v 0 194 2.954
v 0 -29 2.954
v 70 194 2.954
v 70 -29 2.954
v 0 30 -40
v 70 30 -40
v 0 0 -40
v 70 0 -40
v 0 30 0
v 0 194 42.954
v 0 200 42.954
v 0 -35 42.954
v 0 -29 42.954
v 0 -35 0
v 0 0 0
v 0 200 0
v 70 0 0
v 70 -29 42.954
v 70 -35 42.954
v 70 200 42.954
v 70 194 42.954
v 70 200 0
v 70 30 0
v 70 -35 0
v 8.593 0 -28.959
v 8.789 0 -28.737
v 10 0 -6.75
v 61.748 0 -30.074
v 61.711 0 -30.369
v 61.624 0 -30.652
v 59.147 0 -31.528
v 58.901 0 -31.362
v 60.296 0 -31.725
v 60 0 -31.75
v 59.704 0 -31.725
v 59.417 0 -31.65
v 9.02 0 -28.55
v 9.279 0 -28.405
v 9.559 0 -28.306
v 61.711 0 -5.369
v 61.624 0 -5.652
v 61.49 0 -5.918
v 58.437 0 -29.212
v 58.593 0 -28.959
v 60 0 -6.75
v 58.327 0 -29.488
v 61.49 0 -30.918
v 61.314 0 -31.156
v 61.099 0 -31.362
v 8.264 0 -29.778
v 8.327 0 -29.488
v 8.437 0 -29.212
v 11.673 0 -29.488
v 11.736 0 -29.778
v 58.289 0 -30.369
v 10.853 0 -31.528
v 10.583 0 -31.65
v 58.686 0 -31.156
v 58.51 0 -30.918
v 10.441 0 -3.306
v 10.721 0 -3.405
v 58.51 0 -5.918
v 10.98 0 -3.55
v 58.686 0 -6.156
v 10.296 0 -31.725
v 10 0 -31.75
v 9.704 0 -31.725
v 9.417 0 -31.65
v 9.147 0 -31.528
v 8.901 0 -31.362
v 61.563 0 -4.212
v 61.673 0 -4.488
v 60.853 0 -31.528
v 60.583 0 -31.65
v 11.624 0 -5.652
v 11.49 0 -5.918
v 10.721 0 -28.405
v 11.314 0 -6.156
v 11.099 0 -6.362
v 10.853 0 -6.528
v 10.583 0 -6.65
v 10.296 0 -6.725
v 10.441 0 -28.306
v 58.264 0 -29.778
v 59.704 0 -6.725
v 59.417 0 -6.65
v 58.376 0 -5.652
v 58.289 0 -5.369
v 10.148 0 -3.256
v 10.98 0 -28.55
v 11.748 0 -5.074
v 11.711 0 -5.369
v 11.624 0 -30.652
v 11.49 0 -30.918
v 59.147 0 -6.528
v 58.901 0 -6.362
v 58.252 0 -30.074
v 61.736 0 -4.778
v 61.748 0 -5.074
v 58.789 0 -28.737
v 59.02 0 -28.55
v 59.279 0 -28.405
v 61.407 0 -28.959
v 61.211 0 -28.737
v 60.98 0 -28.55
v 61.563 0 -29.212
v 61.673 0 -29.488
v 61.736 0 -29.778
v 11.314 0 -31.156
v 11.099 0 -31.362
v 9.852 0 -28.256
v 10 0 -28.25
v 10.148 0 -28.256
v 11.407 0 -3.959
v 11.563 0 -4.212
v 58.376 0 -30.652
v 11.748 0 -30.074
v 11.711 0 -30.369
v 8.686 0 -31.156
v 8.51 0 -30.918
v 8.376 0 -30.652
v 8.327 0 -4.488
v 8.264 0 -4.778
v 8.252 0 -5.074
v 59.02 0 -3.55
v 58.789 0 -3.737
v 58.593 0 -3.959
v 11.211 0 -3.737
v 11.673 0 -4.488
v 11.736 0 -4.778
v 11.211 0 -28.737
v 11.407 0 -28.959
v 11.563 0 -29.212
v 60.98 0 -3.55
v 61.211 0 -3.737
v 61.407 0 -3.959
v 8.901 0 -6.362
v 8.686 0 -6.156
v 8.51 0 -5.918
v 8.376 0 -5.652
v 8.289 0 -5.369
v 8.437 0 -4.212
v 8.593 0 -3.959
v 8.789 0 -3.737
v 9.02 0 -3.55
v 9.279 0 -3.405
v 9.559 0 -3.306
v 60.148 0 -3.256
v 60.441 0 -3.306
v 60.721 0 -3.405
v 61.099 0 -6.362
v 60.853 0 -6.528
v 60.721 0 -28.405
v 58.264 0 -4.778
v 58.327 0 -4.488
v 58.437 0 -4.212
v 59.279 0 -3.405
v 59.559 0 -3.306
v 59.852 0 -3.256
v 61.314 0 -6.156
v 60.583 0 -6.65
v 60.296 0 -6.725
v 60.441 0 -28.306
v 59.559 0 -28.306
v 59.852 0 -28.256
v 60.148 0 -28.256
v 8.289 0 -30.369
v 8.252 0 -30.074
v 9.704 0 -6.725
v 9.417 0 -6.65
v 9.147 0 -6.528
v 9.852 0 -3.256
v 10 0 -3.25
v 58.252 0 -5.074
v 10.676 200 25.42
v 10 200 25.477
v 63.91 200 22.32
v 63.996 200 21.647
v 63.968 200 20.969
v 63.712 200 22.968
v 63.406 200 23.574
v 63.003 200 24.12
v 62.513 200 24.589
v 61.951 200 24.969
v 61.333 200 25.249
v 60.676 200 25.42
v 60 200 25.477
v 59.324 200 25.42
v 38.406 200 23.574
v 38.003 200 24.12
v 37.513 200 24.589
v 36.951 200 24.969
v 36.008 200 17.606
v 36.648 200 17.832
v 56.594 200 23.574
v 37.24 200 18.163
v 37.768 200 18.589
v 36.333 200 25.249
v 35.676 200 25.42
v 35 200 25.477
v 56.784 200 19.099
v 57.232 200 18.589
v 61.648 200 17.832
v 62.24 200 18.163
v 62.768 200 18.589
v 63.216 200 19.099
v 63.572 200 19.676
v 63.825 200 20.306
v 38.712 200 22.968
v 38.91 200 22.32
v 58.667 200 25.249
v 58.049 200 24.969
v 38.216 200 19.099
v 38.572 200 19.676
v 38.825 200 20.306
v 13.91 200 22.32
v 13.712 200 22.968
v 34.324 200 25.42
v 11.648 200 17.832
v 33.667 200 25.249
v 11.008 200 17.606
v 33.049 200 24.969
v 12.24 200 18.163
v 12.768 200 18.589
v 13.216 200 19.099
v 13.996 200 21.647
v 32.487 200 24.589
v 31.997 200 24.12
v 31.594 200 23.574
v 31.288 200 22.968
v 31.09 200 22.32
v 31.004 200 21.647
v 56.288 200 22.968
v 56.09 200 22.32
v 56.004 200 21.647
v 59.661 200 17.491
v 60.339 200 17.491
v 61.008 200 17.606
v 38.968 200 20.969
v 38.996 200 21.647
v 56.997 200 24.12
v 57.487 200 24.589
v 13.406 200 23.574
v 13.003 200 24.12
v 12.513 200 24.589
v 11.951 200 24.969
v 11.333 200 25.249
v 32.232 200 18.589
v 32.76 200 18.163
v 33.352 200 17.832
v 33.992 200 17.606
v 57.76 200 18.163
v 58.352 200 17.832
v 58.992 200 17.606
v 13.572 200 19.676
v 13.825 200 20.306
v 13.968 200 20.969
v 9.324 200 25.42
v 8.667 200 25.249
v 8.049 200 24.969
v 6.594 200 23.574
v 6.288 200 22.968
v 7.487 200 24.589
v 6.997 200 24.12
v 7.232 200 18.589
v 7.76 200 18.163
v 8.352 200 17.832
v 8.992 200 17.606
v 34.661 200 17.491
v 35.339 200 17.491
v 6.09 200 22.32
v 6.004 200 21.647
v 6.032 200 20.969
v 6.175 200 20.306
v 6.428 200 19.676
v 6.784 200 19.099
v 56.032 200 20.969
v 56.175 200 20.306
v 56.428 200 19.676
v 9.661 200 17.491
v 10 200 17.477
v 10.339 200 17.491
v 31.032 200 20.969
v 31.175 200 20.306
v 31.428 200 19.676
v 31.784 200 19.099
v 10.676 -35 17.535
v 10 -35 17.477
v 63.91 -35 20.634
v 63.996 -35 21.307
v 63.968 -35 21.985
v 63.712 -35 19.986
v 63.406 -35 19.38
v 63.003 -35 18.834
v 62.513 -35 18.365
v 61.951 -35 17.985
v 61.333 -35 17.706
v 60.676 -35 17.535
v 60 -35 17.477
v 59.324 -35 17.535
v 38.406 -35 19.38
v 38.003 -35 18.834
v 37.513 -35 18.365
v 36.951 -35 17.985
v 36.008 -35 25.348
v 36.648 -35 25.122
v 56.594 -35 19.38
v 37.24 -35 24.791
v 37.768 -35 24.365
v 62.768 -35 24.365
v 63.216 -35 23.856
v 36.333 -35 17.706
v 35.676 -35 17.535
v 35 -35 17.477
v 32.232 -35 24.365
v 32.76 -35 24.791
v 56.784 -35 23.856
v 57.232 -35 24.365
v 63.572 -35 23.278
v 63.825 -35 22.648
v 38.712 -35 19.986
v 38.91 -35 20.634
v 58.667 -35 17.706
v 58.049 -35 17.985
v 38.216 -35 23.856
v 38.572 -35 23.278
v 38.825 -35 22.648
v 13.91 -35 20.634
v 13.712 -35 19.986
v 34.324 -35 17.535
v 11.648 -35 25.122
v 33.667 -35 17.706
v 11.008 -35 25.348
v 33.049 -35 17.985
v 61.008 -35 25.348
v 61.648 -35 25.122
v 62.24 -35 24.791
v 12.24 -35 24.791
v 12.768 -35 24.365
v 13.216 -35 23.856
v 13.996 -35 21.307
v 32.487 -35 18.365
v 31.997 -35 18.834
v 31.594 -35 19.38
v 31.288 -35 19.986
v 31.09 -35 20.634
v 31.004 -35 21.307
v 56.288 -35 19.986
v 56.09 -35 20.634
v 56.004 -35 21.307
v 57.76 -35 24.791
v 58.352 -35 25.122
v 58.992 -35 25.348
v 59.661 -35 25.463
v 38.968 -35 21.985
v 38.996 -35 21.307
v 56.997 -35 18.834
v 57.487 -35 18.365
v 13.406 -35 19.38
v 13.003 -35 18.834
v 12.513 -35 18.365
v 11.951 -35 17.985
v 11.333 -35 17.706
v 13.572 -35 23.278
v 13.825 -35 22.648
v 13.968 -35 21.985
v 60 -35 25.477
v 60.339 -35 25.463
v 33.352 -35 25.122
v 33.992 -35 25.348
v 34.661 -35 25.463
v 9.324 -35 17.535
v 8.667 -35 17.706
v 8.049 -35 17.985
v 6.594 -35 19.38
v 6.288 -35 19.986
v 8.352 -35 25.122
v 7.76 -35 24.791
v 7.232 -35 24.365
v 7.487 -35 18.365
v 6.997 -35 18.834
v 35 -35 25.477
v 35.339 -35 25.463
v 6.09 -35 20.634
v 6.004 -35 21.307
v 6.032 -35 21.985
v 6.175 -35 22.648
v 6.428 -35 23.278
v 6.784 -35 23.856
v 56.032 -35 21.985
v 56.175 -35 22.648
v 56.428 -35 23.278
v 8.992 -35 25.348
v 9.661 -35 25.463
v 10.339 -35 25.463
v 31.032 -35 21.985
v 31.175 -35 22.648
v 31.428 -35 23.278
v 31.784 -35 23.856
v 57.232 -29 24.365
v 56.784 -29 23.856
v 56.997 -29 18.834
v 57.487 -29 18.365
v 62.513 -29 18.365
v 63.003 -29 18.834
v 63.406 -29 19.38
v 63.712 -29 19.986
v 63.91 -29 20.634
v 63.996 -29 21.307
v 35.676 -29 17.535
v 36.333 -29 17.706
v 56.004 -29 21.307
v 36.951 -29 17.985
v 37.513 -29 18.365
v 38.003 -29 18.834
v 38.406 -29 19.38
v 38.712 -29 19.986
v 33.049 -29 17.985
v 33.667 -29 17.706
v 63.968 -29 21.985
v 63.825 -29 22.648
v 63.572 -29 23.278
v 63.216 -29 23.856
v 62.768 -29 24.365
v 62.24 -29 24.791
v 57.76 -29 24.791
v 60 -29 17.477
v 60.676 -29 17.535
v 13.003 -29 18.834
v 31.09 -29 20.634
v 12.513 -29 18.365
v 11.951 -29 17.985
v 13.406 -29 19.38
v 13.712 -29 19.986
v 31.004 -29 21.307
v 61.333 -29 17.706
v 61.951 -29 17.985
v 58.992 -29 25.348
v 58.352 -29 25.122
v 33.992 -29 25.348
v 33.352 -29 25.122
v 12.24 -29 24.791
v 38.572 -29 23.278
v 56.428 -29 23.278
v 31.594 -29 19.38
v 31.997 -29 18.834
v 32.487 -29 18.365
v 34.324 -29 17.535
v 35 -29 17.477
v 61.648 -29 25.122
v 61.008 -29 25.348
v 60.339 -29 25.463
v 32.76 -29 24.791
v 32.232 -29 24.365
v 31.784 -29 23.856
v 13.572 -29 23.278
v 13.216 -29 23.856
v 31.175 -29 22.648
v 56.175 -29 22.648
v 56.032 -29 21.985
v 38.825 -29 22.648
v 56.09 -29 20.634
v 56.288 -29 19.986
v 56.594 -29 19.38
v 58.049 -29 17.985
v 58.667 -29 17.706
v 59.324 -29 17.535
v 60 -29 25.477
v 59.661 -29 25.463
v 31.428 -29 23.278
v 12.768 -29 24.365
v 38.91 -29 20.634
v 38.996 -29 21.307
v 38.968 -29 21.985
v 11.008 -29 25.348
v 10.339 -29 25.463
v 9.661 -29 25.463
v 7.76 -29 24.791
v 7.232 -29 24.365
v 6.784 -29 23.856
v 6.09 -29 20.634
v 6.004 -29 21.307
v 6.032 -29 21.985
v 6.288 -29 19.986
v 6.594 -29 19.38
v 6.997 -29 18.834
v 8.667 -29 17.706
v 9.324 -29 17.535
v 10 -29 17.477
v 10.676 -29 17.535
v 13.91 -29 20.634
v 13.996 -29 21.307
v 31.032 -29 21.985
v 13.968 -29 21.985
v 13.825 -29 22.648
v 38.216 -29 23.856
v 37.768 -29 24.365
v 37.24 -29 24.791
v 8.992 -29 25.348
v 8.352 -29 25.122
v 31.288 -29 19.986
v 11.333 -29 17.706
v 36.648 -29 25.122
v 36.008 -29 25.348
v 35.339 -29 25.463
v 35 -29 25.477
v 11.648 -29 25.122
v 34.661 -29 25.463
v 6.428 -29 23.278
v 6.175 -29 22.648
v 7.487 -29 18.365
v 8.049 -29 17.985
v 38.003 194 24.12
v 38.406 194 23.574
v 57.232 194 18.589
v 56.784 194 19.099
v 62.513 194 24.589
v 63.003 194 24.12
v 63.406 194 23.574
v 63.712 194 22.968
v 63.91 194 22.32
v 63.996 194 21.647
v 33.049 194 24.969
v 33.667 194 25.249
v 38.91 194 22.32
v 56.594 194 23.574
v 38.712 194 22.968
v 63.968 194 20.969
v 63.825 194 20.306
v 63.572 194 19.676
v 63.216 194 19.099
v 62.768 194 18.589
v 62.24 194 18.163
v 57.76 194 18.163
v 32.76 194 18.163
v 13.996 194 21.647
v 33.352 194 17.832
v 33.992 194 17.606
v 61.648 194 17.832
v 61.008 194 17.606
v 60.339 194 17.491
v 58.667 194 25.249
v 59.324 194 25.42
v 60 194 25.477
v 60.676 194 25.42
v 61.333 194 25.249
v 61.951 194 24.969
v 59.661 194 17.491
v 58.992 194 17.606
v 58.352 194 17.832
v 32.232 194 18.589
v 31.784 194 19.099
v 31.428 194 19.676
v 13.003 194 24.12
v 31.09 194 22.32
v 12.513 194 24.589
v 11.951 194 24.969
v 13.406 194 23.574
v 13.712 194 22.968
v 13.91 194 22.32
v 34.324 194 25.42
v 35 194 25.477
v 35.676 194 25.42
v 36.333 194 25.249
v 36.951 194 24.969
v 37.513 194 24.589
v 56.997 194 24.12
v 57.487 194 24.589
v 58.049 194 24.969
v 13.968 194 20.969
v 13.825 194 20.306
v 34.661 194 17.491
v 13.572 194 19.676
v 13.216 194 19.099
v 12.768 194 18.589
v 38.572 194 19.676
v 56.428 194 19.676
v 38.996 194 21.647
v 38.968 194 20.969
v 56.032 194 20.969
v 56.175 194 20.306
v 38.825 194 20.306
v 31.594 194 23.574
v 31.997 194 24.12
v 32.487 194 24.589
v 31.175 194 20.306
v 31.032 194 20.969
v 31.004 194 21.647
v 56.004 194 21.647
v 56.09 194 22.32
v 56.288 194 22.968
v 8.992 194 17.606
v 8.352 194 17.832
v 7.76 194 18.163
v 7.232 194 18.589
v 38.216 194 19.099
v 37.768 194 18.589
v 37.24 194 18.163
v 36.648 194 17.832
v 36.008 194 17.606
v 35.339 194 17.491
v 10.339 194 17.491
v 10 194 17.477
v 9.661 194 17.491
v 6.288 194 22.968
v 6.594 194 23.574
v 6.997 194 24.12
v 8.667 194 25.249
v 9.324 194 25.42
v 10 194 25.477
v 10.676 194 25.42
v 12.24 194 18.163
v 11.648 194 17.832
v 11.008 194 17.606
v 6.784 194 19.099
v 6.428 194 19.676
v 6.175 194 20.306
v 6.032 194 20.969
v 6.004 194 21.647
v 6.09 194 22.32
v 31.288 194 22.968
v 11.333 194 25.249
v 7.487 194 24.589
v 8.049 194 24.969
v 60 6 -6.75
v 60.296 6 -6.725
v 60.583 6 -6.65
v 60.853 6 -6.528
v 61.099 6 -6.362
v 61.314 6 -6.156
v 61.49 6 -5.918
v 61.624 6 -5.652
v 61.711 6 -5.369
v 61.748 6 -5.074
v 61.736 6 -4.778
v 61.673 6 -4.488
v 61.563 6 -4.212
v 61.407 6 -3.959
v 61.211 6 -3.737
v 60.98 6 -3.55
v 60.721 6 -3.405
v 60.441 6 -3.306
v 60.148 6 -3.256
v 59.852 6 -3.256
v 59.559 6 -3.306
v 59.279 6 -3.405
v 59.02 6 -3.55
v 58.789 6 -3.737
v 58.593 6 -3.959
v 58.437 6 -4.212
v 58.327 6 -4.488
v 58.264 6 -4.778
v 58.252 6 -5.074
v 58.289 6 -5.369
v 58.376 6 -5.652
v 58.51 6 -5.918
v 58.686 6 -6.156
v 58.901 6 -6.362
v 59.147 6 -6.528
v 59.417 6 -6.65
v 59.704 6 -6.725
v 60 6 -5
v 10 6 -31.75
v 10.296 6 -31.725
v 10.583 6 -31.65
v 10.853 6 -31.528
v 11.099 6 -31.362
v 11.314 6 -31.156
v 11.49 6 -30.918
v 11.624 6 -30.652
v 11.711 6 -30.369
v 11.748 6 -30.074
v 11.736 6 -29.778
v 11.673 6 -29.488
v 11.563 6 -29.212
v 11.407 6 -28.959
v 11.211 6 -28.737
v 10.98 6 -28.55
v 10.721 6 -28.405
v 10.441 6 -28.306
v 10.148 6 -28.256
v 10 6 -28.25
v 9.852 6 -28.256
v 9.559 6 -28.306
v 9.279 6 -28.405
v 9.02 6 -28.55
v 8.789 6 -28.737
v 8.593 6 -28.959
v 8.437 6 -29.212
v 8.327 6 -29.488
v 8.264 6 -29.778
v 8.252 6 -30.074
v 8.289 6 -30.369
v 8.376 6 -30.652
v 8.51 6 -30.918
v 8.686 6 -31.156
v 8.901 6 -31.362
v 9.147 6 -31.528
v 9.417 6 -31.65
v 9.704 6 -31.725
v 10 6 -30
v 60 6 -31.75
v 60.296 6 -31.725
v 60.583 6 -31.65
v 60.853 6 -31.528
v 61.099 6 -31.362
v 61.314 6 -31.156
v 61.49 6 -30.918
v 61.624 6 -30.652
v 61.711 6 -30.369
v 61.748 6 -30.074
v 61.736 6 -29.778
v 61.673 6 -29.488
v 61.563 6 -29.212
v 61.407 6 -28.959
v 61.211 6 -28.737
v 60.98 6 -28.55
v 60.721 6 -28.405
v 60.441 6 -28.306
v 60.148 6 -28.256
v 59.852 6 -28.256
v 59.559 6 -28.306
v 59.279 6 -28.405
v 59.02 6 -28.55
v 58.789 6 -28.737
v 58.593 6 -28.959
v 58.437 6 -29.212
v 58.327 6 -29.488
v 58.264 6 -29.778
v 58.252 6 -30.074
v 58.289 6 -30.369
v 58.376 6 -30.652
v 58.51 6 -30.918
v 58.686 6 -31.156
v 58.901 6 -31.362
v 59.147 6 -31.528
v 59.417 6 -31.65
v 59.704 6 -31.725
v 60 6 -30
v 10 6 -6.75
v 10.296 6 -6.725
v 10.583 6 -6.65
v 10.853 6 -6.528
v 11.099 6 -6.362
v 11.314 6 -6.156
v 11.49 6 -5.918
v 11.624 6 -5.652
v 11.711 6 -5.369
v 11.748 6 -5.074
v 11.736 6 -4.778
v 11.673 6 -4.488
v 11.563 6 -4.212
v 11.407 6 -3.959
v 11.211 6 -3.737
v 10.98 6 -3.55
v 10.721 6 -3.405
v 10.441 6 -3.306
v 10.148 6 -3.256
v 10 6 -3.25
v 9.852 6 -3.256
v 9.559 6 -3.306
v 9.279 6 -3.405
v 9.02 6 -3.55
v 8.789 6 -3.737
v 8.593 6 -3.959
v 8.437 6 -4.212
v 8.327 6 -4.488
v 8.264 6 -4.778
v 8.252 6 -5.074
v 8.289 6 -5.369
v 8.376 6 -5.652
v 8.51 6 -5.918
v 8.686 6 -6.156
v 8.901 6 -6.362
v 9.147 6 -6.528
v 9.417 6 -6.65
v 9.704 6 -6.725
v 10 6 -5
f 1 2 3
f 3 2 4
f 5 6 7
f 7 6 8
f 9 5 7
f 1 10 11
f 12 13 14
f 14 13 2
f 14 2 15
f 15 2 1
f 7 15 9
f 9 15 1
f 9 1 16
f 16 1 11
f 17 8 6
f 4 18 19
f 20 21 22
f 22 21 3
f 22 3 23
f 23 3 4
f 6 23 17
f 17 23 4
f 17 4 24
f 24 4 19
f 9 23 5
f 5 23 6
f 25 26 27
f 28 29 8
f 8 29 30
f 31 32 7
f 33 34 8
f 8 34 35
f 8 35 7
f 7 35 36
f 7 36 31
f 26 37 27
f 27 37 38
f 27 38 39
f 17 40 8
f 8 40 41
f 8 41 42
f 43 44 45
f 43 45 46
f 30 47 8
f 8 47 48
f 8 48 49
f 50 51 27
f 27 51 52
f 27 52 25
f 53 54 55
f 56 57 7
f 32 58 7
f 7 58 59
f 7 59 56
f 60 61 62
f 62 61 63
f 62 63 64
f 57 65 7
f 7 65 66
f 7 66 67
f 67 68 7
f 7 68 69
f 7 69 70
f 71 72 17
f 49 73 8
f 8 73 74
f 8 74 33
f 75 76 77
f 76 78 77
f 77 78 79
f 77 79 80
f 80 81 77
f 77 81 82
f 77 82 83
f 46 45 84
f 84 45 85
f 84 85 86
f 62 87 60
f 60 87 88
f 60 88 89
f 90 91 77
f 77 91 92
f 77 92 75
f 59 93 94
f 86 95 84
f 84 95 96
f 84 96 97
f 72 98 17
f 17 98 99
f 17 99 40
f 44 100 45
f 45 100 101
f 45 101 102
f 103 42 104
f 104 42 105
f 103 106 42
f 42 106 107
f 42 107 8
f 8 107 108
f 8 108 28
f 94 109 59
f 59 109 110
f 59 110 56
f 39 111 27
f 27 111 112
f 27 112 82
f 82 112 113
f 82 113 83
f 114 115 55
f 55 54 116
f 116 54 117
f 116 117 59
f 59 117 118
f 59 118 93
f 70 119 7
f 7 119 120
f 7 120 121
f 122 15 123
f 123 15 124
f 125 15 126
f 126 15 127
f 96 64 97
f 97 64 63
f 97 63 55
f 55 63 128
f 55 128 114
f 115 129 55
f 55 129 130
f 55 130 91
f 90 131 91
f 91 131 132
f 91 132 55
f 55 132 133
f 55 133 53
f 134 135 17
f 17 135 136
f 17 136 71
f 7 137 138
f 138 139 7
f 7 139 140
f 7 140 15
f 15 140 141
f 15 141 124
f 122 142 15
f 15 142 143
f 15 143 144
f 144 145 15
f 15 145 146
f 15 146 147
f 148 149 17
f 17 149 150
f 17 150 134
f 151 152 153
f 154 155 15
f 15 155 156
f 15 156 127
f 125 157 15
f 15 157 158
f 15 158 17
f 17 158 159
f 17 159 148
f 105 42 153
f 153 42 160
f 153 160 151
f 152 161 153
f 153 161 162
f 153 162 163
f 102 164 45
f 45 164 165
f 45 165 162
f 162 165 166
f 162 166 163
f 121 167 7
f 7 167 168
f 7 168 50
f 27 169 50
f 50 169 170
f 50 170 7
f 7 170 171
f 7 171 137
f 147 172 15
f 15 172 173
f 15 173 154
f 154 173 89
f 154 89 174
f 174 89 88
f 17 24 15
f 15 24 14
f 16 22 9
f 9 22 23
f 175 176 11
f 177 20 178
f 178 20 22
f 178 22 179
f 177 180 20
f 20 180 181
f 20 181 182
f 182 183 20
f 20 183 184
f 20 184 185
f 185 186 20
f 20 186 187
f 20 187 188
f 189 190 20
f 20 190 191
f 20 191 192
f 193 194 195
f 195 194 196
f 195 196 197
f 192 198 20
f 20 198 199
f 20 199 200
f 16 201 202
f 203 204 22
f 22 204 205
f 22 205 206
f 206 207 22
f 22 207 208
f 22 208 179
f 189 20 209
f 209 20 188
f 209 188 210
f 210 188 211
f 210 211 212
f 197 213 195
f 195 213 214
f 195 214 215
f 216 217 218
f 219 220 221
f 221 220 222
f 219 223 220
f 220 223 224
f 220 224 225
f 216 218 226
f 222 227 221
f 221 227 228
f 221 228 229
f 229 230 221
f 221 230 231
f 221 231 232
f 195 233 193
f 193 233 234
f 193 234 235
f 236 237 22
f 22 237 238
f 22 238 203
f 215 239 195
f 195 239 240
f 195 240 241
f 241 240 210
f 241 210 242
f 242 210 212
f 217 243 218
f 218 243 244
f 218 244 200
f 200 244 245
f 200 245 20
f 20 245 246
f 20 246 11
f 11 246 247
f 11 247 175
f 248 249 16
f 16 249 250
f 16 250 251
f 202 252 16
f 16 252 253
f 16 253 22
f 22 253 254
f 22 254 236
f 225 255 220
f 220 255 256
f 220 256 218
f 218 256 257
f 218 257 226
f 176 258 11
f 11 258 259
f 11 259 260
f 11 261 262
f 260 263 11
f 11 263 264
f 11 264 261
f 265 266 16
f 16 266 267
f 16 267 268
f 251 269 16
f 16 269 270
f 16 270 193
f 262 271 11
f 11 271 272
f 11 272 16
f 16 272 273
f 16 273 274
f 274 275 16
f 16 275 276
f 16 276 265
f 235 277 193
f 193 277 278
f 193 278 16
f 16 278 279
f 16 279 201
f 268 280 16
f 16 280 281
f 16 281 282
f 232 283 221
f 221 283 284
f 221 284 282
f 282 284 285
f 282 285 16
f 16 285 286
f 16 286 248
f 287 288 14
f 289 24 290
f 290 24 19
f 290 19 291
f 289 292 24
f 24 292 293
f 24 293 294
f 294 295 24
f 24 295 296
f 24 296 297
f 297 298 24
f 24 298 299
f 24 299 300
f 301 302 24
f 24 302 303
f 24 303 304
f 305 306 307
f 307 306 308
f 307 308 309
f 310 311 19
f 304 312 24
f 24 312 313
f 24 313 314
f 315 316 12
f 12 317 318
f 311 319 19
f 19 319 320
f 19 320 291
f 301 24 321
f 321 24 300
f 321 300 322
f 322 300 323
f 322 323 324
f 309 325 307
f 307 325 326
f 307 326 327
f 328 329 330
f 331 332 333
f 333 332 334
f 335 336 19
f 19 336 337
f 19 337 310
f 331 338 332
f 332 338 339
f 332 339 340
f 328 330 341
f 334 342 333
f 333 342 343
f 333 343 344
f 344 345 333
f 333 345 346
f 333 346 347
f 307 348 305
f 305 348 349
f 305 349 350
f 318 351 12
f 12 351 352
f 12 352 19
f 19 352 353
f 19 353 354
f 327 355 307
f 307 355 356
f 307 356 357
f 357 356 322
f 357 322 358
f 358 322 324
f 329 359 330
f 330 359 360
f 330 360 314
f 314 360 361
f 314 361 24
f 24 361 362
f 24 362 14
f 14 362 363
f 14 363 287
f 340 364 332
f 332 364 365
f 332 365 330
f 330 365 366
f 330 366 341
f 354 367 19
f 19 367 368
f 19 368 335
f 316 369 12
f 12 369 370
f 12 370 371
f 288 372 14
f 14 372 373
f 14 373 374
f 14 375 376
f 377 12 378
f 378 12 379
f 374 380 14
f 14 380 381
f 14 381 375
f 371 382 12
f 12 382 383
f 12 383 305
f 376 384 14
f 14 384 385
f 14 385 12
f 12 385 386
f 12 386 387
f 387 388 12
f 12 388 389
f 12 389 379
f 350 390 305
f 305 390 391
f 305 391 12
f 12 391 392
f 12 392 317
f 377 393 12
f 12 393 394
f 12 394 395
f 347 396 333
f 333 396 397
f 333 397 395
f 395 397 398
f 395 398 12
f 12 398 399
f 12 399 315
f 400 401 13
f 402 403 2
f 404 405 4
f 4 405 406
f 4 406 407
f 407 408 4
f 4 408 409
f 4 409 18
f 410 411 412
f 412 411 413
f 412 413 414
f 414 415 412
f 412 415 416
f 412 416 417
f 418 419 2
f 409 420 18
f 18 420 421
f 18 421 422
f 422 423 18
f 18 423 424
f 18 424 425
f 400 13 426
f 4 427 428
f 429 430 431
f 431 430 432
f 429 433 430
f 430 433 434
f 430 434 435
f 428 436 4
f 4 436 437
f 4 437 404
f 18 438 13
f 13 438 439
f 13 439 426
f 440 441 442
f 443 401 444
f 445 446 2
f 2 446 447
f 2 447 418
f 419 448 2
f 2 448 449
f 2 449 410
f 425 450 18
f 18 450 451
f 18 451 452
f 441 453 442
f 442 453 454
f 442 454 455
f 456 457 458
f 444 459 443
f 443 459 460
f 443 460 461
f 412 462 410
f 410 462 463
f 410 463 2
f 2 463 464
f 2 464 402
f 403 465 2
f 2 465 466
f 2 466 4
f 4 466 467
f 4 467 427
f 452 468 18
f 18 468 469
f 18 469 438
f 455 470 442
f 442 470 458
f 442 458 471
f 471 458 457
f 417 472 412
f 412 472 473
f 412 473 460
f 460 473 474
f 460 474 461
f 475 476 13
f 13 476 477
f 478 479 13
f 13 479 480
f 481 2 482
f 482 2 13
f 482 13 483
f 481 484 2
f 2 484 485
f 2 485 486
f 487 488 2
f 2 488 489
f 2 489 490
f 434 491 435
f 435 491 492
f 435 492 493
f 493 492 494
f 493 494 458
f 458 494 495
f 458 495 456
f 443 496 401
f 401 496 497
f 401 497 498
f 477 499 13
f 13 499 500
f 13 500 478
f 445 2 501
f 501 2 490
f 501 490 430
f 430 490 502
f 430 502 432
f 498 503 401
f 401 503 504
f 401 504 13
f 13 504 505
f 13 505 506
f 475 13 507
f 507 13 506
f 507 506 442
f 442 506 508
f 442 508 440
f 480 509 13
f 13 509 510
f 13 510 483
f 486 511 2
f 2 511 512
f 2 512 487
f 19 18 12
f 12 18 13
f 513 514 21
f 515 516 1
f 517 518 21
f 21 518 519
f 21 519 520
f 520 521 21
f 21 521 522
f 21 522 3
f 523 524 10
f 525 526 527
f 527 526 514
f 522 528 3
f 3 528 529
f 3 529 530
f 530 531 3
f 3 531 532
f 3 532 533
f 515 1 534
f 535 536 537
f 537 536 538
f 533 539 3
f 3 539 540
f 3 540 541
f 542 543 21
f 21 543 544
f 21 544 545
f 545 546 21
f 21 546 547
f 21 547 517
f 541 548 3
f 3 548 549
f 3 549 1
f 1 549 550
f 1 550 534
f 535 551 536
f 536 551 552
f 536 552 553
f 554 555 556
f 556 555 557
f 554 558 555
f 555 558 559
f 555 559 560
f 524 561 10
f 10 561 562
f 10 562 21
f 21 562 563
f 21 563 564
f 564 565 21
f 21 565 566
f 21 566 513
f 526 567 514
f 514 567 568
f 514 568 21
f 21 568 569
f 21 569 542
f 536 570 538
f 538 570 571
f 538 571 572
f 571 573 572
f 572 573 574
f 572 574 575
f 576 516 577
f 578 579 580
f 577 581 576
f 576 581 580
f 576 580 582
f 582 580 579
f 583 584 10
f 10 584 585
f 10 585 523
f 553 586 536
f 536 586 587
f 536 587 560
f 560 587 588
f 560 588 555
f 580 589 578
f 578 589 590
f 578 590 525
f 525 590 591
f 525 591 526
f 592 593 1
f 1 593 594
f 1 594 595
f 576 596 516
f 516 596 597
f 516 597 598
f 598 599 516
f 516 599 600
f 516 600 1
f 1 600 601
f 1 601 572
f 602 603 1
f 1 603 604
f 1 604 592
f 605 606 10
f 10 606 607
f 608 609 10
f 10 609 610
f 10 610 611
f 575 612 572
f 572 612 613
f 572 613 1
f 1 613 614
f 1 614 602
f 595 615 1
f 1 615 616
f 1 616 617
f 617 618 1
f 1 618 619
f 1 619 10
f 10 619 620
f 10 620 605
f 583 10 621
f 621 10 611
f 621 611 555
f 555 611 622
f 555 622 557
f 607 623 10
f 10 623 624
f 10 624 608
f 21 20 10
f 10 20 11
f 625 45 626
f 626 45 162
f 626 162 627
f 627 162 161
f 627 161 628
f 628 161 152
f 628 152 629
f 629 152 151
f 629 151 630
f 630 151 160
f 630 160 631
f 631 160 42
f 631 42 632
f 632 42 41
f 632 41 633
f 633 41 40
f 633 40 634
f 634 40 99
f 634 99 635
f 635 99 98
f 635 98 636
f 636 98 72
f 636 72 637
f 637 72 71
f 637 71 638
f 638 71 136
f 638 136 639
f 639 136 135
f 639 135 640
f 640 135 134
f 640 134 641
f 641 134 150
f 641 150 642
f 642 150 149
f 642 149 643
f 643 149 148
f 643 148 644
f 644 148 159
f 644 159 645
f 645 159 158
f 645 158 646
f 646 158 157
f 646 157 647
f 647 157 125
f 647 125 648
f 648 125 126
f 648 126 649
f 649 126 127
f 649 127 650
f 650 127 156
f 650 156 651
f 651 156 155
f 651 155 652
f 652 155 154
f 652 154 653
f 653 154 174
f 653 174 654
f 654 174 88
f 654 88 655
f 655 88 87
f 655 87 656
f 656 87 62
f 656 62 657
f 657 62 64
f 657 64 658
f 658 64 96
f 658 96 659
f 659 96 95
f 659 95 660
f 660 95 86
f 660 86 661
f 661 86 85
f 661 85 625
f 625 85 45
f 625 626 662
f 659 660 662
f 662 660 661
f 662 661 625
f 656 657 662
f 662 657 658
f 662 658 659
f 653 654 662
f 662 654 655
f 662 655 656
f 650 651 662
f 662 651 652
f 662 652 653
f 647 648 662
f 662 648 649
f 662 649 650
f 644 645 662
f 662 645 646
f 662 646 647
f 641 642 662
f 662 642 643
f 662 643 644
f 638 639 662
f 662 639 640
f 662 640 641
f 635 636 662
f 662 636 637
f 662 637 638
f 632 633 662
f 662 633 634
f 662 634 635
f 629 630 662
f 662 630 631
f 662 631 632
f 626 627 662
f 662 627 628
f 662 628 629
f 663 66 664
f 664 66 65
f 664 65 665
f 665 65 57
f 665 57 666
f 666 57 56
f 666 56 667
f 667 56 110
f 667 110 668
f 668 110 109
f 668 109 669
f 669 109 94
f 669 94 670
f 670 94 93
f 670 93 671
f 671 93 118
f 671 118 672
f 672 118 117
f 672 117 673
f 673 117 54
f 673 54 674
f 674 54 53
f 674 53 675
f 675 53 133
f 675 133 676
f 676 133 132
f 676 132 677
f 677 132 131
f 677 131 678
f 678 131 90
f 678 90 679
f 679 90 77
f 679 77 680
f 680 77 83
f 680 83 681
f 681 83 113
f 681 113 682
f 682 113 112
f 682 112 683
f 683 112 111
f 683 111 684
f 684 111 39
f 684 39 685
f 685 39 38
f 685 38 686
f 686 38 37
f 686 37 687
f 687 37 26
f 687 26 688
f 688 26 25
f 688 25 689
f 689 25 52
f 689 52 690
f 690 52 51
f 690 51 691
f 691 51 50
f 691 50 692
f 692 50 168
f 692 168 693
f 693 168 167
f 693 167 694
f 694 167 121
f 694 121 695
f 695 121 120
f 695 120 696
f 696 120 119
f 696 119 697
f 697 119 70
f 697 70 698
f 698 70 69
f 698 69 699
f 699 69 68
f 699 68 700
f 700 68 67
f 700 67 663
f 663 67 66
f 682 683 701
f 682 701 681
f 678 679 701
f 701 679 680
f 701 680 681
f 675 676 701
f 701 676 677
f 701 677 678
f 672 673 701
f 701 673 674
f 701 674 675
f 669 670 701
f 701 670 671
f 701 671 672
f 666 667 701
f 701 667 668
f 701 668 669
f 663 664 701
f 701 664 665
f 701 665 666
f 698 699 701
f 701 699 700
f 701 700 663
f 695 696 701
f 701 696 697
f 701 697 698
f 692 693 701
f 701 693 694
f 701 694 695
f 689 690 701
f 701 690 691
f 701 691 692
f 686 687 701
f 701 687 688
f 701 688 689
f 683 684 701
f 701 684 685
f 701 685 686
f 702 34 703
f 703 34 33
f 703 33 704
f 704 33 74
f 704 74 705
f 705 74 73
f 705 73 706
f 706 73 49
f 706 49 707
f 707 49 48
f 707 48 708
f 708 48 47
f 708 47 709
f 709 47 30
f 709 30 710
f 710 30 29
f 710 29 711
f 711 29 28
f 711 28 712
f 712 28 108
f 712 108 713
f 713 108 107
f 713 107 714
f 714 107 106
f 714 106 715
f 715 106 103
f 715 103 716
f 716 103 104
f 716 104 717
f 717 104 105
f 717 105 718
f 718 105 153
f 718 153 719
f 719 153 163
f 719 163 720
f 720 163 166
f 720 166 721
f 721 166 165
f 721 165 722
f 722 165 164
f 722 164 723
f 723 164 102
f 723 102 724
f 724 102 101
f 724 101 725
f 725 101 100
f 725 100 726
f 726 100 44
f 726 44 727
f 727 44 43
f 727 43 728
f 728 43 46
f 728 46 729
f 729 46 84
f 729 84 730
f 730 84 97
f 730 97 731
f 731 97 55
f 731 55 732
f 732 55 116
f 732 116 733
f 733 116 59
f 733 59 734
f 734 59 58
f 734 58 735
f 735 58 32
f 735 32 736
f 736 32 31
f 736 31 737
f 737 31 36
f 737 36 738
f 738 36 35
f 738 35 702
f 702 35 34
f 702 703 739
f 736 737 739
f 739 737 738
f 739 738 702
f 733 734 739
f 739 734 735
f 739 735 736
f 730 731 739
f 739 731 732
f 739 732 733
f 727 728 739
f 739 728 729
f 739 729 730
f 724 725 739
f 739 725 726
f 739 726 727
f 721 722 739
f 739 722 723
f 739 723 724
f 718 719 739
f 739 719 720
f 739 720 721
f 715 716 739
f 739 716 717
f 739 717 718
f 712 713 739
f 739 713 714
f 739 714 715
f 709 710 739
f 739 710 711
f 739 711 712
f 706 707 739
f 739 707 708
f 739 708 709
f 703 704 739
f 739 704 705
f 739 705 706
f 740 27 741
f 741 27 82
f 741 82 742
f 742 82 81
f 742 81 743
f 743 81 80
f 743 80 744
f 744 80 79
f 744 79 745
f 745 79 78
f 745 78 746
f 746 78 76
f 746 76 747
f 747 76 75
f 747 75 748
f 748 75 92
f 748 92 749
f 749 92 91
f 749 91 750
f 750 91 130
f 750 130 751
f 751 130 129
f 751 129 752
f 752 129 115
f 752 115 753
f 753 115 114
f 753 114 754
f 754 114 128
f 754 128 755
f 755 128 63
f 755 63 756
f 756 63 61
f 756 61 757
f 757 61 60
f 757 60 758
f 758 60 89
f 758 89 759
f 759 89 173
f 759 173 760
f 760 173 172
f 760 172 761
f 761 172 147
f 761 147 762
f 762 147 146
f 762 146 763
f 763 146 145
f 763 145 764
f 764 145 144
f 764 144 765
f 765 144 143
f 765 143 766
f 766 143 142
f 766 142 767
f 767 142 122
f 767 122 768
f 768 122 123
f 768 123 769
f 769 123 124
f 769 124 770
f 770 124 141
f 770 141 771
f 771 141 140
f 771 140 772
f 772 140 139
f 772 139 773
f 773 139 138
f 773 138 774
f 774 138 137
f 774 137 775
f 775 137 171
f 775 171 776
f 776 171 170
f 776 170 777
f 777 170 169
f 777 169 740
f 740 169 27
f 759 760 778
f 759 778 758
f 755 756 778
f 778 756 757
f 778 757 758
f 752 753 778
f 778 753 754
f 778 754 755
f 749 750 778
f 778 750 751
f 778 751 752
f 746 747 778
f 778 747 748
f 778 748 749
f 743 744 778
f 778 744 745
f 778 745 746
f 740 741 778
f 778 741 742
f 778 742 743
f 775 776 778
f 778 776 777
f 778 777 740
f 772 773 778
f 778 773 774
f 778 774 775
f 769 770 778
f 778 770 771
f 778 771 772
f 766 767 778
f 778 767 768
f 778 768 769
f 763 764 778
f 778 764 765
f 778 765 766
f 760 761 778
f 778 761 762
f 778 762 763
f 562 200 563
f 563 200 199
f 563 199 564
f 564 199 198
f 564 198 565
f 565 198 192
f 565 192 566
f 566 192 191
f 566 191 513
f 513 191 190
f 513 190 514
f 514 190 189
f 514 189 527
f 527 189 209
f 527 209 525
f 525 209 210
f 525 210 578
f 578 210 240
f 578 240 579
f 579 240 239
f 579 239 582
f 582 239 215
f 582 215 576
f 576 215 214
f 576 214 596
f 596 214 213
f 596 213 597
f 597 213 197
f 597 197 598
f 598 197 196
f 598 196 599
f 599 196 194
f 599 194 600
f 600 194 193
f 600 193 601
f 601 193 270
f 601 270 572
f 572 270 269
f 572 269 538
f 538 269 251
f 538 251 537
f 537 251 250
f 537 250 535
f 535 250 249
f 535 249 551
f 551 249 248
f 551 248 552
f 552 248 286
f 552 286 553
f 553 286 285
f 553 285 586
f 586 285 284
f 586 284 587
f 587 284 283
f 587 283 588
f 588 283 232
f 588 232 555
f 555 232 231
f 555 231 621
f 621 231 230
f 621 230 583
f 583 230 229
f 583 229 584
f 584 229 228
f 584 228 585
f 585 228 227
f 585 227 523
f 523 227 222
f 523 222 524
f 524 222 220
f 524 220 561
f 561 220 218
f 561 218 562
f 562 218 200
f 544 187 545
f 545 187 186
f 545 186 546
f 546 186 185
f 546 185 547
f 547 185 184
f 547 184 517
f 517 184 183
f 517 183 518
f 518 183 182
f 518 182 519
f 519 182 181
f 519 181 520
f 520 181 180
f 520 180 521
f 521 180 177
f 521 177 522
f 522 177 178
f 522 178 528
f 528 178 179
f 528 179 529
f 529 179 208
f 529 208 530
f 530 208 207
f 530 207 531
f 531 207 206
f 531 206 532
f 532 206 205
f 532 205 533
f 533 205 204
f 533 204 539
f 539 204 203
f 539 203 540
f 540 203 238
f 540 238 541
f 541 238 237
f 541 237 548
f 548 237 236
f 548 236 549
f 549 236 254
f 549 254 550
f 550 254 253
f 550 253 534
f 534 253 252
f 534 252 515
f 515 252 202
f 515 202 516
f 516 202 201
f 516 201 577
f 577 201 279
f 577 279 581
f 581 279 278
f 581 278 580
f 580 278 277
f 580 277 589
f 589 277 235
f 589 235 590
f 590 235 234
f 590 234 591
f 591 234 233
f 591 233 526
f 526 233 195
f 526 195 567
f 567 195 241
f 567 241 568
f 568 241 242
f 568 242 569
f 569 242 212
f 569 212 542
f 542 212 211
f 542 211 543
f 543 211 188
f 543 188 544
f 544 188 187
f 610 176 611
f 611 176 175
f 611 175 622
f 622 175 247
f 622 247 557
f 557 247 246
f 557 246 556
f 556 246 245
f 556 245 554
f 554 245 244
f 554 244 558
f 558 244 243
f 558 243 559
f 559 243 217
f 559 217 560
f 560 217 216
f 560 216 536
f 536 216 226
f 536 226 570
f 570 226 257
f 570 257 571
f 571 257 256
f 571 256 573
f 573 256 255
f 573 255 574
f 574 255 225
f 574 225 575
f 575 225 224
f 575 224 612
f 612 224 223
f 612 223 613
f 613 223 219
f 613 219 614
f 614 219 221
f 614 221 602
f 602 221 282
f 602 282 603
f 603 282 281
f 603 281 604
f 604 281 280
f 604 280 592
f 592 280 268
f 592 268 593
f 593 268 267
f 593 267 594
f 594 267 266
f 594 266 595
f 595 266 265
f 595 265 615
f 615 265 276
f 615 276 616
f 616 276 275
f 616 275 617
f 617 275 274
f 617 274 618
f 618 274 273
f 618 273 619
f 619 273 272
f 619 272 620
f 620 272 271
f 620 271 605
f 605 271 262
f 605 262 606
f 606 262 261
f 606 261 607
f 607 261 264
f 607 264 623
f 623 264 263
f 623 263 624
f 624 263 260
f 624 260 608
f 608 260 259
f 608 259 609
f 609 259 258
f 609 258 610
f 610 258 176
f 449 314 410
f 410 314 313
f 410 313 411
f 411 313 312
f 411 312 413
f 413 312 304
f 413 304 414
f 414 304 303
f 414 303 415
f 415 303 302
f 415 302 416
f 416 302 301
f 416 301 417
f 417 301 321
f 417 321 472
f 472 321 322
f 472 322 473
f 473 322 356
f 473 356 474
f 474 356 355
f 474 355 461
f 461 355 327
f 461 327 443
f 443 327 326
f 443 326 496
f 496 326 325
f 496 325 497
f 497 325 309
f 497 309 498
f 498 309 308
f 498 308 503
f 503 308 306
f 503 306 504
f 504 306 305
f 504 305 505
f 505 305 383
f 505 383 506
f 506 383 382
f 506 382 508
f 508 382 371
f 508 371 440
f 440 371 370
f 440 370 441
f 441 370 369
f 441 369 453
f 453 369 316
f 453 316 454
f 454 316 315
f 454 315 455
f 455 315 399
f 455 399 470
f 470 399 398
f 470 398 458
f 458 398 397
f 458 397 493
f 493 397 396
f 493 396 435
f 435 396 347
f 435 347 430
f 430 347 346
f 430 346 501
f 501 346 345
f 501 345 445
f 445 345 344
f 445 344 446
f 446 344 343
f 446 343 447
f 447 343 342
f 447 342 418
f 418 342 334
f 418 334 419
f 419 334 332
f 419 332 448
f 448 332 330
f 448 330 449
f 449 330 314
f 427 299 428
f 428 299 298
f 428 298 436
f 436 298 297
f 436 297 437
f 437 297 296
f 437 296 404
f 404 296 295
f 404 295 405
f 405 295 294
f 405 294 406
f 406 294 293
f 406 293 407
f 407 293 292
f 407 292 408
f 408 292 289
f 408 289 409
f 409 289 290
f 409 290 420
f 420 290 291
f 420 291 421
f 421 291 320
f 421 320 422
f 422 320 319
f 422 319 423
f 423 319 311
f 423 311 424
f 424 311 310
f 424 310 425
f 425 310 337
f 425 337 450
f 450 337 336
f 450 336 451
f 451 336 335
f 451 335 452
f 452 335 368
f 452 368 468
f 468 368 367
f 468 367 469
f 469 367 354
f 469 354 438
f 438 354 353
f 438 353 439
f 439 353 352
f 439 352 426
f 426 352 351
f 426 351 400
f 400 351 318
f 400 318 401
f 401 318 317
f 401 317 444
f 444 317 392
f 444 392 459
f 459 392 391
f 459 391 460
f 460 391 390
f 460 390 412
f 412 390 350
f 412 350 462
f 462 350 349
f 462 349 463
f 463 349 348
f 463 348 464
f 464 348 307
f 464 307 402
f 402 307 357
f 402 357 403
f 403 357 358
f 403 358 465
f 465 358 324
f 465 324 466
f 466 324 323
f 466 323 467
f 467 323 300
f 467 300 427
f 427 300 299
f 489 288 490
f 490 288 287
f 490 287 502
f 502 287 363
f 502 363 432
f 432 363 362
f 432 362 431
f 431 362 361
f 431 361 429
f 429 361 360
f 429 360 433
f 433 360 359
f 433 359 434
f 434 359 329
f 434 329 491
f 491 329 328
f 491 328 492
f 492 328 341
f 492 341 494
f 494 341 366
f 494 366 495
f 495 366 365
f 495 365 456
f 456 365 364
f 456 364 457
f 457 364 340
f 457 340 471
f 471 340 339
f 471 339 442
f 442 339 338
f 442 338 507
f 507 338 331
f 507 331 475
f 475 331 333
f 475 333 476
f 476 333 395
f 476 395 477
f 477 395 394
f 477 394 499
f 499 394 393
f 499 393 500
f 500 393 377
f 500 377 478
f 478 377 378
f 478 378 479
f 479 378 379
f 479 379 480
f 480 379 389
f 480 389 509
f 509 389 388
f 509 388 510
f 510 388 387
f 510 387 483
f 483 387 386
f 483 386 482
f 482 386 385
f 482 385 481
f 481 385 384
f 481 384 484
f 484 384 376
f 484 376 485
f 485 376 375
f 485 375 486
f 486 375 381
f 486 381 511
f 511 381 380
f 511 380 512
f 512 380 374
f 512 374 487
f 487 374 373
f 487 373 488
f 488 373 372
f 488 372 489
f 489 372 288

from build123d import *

# Parameters (mm, degrees)
SKETCH_1_W           = 70
SKETCH_1_H           = 40
EXTRUDE_1_DEPTH      = 30
EXTRUDE_3_DEPTH      = 200
EXTRUDE_3_DEPTH_BACK = 35
SKETCH_5_W           = 70
SKETCH_5_H           = 2.954129794
SKETCH_6_W           = 70
SKETCH_6_H           = 6
EXTRUDE_4_DEPTH      = 40
SKETCH_8_R           = 1.75
CUT_EXTRUDE_1_DEPTH  = 6
SKETCH_9_R           = 4
CUT_EXTRUDE_2_DEPTH  = 6


with BuildPart() as part:
    # 草图1 → 凸台-拉伸1 (new body)
    with BuildSketch(Plane(origin=(0, 0, 0), x_dir=(1, 0, 0), z_dir=(0, 1, 0))):
        with Locations((35, 20)):
            Rectangle(SKETCH_1_W, SKETCH_1_H)
    extrude(amount=EXTRUDE_1_DEPTH)

    # 草图5 → 凸台-拉伸3 (add, two sides: drawn at the far end of the back side and taken through both)
    with BuildSketch(Plane(origin=(0, 0, 0), x_dir=(1, 0, 0), z_dir=(0, 1, 0)).offset(-EXTRUDE_3_DEPTH_BACK)):
        with Locations((35, -1.477064897)):
            Rectangle(SKETCH_5_W, SKETCH_5_H)
    extrude(amount=EXTRUDE_3_DEPTH + EXTRUDE_3_DEPTH_BACK)

    # 草图6 → 凸台-拉伸4 (add)
    with BuildSketch(Plane.XY.offset(2.954129794)):
        with Locations((35, -32)):
            Rectangle(SKETCH_6_W, SKETCH_6_H)
    extrude_4 = extrude(amount=EXTRUDE_4_DEPTH)

    # 镜向1: 凸台-拉伸4 across plane
    add(extrude_4.mirror(Plane.ZX.offset(82.5)))

    # 草图8 → 切除-拉伸1 (cut)
    with BuildSketch(Plane.XZ):
        with Locations(Location((60, -5, 0), (0, 0, 270))):
            Circle(SKETCH_8_R)
        with Locations(Location((10, -5, 0), (0, 0, 90))):
            Circle(SKETCH_8_R)
        with Locations(Location((60, -30, 0), (0, 0, 270))):
            Circle(SKETCH_8_R)
        with Locations(Location((10, -30, 0), (0, 0, 90))):
            Circle(SKETCH_8_R)
    extrude(amount=-CUT_EXTRUDE_1_DEPTH, mode=Mode.SUBTRACT)

    # 草图9 → 切除-拉伸2 (cut)
    with BuildSketch(Plane(origin=(0, 200, 0), x_dir=(1, 0, 0), z_dir=(0, 1, 0))):
        with Locations(Location((35, -21.477064897, 0), (0, 0, 270))):
            Circle(SKETCH_9_R)
        with Locations(Location((60, -21.477064897, 0), (0, 0, 270))):
            Circle(SKETCH_9_R)
        with Locations(Location((10, -21.477064897, 0), (0, 0, 90))):
            Circle(SKETCH_9_R)
    cut_extrude_2 = extrude(amount=-CUT_EXTRUDE_2_DEPTH, mode=Mode.SUBTRACT)

    # 镜向2: 切除-拉伸2 across plane
    add(cut_extrude_2.mirror(Plane.ZX.offset(82.5)), mode=Mode.SUBTRACT)


solid = part.part
